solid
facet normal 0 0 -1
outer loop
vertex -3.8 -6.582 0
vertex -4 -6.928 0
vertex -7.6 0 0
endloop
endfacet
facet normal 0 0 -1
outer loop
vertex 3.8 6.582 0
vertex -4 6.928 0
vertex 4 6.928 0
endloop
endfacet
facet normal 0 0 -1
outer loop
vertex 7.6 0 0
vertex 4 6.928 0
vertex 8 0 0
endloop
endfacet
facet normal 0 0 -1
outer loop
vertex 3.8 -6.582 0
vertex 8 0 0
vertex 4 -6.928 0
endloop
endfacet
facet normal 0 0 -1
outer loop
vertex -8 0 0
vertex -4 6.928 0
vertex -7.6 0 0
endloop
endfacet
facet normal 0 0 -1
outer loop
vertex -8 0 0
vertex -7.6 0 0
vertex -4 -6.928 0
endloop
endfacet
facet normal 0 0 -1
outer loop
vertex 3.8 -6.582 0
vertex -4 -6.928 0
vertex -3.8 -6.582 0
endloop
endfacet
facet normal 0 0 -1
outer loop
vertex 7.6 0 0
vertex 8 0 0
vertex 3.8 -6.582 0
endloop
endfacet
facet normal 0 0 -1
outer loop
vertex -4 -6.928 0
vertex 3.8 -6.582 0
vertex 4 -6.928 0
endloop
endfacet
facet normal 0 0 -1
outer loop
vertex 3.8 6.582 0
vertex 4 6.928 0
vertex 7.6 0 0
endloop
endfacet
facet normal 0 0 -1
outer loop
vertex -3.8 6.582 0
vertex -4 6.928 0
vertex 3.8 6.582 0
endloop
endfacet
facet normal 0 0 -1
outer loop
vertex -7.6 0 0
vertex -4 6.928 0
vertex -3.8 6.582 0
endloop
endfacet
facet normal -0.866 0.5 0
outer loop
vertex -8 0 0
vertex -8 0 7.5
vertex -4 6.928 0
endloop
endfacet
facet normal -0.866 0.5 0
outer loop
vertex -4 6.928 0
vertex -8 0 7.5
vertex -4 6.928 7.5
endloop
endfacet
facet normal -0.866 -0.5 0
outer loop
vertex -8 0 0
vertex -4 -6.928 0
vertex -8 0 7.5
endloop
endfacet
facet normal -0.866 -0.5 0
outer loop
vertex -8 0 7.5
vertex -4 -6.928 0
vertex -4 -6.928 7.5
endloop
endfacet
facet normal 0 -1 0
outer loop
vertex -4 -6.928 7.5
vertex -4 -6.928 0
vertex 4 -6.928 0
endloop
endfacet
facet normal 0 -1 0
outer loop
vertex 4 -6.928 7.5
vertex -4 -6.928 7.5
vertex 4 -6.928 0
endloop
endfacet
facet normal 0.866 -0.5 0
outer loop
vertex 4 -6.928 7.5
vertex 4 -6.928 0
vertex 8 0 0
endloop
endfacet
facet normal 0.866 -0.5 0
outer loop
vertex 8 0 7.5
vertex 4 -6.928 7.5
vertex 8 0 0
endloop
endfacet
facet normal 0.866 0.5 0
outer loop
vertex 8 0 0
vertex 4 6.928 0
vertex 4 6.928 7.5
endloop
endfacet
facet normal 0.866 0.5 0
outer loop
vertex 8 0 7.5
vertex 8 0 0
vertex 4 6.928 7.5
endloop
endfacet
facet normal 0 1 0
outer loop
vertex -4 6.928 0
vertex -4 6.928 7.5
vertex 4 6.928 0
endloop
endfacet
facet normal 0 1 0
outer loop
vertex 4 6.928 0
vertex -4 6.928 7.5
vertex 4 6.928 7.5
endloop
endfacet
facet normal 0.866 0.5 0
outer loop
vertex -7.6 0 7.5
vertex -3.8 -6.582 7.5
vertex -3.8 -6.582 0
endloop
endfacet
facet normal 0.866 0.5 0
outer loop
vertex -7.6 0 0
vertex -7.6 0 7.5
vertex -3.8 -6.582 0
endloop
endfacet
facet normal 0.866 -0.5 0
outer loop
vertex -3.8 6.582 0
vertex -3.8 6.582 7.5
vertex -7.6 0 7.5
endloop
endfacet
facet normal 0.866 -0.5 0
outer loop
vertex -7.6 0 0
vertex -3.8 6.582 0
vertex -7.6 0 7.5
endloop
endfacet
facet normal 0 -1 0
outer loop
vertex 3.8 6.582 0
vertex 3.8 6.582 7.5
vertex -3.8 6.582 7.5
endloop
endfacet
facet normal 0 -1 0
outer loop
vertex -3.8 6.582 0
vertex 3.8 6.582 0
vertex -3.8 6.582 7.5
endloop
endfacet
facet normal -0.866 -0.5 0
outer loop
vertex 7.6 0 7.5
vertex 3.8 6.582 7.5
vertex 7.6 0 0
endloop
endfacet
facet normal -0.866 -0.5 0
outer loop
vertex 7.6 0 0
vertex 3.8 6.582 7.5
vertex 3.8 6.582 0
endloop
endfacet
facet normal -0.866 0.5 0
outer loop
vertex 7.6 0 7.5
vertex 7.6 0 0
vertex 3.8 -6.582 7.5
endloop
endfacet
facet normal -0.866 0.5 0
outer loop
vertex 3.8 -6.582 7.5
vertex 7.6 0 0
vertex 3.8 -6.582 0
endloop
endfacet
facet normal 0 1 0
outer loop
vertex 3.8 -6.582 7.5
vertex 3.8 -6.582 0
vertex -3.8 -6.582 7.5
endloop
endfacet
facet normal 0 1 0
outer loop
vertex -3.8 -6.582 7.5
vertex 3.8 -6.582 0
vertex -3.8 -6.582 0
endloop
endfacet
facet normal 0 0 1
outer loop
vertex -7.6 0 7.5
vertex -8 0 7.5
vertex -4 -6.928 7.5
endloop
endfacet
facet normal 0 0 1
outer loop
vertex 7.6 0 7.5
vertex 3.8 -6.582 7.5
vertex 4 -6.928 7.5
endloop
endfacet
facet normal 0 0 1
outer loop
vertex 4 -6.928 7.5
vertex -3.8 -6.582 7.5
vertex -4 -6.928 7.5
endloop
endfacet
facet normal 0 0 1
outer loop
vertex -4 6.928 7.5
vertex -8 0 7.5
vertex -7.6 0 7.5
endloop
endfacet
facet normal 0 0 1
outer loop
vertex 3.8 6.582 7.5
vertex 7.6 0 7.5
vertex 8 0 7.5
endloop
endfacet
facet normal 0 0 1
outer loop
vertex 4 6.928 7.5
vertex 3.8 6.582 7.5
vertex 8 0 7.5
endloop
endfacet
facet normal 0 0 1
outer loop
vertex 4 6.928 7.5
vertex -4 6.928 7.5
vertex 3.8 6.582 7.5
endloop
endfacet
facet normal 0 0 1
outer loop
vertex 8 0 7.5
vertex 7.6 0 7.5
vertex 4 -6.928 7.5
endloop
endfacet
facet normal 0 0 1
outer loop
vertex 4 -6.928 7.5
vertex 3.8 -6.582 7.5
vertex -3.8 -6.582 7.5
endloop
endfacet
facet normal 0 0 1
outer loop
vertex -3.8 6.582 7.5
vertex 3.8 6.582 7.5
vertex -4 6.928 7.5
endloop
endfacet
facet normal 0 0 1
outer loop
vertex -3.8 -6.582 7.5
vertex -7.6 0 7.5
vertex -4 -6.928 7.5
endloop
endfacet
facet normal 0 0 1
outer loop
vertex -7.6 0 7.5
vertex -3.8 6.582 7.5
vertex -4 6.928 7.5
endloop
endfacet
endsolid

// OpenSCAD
difference(){
cylinder(h=7.5,r=8,$fn=6);
cylinder(h=8,r=7.6,$fn=6);
}
